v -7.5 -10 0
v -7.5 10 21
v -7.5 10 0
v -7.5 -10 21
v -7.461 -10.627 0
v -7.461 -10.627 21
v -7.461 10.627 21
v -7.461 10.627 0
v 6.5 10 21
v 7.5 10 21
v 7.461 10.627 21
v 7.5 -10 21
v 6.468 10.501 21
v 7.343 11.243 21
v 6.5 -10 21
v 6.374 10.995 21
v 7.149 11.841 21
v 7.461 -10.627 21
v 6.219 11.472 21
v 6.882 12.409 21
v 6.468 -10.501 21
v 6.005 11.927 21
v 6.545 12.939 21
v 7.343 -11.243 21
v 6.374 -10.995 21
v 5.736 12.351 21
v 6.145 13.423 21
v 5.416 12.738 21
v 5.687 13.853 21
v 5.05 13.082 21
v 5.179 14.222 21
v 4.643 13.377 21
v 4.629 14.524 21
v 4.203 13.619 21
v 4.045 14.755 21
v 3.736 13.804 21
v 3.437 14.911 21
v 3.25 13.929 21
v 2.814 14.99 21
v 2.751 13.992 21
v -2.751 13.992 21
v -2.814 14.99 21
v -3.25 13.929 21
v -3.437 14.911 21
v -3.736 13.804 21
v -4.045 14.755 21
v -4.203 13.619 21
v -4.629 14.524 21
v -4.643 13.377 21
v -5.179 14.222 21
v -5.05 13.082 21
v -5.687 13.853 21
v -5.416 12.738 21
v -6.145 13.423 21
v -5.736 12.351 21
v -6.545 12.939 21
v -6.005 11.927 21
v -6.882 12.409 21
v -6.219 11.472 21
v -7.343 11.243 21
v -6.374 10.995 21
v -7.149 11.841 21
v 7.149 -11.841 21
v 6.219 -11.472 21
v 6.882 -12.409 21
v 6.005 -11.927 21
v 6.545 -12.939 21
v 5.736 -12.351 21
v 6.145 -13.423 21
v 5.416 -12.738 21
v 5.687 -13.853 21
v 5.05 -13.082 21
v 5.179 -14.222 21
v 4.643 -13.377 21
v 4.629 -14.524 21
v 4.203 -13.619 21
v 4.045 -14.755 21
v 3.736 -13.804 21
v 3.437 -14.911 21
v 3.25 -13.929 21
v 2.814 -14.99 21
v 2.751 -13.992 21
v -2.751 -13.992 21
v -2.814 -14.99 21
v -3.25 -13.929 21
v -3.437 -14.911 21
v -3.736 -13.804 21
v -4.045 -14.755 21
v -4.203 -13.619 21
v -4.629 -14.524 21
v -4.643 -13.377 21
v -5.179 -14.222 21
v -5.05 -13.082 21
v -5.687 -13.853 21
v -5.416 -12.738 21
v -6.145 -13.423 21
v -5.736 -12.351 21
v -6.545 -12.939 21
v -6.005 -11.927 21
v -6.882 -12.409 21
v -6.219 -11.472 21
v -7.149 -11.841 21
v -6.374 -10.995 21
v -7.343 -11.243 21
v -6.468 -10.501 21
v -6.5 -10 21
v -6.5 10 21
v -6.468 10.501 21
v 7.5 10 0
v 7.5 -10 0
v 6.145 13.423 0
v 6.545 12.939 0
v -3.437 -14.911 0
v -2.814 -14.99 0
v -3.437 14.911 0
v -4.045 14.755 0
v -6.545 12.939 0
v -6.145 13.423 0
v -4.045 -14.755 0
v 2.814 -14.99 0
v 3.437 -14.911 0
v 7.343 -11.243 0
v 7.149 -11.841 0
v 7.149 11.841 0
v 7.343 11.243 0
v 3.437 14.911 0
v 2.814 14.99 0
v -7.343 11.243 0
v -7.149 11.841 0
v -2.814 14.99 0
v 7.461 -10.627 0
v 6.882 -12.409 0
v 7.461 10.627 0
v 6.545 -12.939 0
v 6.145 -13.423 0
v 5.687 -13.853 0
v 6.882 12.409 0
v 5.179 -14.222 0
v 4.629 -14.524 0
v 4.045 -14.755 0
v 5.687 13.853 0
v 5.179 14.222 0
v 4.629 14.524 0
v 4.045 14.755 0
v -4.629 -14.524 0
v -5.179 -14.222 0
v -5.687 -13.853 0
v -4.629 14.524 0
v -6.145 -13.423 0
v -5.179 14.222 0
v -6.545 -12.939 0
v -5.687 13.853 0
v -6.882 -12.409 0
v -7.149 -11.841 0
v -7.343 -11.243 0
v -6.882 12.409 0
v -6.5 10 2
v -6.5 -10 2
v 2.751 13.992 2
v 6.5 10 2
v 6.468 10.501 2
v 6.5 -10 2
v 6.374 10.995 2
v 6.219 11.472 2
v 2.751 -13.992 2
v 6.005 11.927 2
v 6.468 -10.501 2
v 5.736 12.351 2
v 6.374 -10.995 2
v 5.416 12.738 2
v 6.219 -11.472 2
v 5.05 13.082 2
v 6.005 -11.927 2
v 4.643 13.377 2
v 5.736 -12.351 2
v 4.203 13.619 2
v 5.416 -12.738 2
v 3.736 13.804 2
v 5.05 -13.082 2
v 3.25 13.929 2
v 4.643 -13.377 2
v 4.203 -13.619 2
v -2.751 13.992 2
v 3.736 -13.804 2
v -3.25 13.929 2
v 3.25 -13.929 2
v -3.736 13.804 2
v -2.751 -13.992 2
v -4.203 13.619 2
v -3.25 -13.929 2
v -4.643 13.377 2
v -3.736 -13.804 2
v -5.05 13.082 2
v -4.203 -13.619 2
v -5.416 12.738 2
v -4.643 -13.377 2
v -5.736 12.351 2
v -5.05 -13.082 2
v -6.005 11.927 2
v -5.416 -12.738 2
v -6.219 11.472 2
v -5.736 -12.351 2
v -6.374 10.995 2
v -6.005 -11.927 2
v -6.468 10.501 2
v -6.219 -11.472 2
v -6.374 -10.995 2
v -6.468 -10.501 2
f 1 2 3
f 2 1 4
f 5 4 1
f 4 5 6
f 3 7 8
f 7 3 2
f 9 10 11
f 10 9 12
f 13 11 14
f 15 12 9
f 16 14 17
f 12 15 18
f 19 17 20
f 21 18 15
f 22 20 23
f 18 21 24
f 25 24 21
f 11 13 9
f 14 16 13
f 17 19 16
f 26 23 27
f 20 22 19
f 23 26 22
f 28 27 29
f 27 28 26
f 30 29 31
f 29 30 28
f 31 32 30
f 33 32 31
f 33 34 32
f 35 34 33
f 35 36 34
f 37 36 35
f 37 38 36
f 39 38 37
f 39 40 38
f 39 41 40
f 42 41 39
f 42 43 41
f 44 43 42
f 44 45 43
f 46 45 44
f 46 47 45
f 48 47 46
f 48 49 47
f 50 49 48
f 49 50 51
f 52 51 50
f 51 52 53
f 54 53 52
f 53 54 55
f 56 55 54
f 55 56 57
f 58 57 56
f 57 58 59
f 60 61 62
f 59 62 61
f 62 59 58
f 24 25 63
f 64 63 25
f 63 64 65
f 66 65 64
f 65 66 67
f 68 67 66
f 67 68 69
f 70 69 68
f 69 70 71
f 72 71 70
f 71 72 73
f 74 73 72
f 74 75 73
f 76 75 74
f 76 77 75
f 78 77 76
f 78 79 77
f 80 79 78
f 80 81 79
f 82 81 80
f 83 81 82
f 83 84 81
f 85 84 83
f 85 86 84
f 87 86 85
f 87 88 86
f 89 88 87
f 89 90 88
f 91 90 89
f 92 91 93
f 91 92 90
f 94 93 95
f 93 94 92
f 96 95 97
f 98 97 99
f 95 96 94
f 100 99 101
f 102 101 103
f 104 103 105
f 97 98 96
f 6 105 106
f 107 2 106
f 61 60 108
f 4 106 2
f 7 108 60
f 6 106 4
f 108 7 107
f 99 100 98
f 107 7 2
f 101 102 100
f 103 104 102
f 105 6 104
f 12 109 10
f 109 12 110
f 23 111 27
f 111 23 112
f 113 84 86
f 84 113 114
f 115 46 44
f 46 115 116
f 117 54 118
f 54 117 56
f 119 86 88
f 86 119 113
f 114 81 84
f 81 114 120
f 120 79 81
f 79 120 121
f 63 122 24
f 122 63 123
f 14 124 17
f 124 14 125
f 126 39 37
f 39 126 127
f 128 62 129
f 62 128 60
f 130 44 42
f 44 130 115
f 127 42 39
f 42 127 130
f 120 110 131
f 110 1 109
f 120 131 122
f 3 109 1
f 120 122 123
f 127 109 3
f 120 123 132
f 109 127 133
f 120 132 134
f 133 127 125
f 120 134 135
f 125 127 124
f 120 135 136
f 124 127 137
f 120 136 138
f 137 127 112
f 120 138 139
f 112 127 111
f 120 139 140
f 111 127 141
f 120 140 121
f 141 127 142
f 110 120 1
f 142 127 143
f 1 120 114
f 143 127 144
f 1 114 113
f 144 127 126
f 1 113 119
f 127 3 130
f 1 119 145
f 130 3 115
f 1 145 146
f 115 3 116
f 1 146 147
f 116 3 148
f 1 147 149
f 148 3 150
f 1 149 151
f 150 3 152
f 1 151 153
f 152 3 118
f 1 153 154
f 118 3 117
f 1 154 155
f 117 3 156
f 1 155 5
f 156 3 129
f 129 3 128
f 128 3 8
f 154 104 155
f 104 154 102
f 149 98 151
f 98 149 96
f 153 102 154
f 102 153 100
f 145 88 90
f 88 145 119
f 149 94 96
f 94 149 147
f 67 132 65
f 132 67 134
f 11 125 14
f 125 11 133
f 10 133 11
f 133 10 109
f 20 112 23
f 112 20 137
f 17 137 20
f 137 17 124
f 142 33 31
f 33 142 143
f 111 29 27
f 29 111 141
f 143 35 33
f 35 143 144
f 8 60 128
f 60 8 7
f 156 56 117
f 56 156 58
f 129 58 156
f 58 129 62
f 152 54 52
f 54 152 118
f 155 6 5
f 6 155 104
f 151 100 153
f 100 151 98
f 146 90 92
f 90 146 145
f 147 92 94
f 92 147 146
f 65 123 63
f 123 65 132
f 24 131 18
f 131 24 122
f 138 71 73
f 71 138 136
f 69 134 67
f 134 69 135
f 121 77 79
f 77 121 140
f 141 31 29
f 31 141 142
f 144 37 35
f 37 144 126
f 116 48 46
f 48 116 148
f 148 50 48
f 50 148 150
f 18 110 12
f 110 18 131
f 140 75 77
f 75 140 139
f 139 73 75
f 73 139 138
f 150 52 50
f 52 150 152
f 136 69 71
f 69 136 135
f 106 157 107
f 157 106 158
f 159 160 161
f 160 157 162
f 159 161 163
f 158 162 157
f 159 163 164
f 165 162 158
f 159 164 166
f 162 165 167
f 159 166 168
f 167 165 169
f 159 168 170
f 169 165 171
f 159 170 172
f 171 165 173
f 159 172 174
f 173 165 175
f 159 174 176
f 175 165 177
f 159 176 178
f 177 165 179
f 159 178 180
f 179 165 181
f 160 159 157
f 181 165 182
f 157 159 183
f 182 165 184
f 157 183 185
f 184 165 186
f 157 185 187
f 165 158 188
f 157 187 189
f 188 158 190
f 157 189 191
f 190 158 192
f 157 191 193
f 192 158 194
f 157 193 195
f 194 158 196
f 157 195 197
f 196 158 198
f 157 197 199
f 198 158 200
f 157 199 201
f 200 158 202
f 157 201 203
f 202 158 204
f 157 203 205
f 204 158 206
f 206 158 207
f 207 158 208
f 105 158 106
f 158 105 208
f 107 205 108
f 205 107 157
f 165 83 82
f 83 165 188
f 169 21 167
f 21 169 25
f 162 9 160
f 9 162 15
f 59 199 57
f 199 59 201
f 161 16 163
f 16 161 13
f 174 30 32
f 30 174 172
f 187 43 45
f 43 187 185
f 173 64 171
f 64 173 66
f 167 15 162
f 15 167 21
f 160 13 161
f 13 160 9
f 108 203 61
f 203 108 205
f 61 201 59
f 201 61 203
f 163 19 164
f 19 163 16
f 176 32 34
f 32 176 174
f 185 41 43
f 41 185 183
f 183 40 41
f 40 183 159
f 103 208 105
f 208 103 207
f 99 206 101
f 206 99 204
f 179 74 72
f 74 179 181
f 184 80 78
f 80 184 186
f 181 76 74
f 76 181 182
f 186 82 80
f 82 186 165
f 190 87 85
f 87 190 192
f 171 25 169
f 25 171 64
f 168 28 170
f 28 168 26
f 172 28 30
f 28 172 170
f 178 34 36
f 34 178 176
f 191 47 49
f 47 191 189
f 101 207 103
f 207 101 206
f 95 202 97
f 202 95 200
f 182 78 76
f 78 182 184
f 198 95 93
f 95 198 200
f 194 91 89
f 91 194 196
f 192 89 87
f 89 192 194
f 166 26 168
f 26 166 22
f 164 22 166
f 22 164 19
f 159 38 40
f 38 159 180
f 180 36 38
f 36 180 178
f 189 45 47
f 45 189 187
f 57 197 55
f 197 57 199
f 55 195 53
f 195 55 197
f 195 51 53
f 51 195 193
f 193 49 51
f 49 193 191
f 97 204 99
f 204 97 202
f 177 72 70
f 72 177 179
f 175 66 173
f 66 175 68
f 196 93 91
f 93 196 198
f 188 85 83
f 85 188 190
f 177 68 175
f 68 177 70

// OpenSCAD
$fn = 50;


difference() {
	union() {
		hull() {
			translate(v = [-2.5000000000, 10.0000000000, 0]) {
				cylinder(h = 21, r = 5);
			}
			translate(v = [2.5000000000, 10.0000000000, 0]) {
				cylinder(h = 21, r = 5);
			}
			translate(v = [-2.5000000000, -10.0000000000, 0]) {
				cylinder(h = 21, r = 5);
			}
			translate(v = [2.5000000000, -10.0000000000, 0]) {
				cylinder(h = 21, r = 5);
			}
		}
	}
	union() {
		translate(v = [0, 0, 2]) {
			hull() {
				translate(v = [-2.5000000000, 10.0000000000, 0]) {
					cylinder(h = 19, r = 4);
				}
				translate(v = [2.5000000000, 10.0000000000, 0]) {
					cylinder(h = 19, r = 4);
				}
				translate(v = [-2.5000000000, -10.0000000000, 0]) {
					cylinder(h = 19, r = 4);
				}
				translate(v = [2.5000000000, -10.0000000000, 0]) {
					cylinder(h = 19, r = 4);
				}
			}
		}
	}
}
